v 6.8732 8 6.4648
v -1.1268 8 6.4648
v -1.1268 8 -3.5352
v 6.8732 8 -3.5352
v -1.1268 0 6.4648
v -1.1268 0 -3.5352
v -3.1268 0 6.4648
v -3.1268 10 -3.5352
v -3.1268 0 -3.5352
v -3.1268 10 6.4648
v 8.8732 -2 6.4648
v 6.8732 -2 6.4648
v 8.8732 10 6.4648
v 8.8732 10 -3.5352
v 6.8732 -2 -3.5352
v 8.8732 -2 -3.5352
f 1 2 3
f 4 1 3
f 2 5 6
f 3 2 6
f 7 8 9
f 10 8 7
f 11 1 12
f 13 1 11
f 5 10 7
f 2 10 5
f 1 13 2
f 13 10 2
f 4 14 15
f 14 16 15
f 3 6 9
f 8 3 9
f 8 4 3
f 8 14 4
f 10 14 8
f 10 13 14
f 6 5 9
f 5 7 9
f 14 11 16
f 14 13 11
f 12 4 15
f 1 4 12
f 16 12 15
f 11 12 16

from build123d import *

# Parameters (mm, degrees)
SKETCH1_W           = 2
SKETCH1_H           = 10
BOSS_EXTRUDE1_DEPTH = 10
SKETCH2_W           = 10
SKETCH2_H           = 2
BOSS_EXTRUDE2_DEPTH = 10
SKETCH3_W           = 2
SKETCH3_H           = 10
BOSS_EXTRUDE3_DEPTH = 10


with BuildPart() as part:
    # Sketch1 → Boss-Extrude1 (new body)
    with BuildSketch(Plane(origin=(0, 0, 0), x_dir=(1, 0, 0), z_dir=(0, 1, 0))):
        with Locations((-2.126760563, -1.464788732)):
            Rectangle(SKETCH1_W, SKETCH1_H)
    extrude(amount=BOSS_EXTRUDE1_DEPTH)

    # Sketch2 → Boss-Extrude2 (add)
    with BuildSketch(Plane(origin=(-1.126760563, 0, 0), x_dir=(0, 0, -1), z_dir=(1, 0, 0))):
        with Locations((-1.464788732, 9)):
            Rectangle(SKETCH2_W, SKETCH2_H)
    extrude(amount=BOSS_EXTRUDE2_DEPTH)

    # Sketch3 → Boss-Extrude3 (add)
    with BuildSketch(Plane.XZ.offset(-8)):
        with Locations((7.873239437, 1.464788732)):
            Rectangle(SKETCH3_W, SKETCH3_H)
    extrude(amount=BOSS_EXTRUDE3_DEPTH)


solid = part.part
